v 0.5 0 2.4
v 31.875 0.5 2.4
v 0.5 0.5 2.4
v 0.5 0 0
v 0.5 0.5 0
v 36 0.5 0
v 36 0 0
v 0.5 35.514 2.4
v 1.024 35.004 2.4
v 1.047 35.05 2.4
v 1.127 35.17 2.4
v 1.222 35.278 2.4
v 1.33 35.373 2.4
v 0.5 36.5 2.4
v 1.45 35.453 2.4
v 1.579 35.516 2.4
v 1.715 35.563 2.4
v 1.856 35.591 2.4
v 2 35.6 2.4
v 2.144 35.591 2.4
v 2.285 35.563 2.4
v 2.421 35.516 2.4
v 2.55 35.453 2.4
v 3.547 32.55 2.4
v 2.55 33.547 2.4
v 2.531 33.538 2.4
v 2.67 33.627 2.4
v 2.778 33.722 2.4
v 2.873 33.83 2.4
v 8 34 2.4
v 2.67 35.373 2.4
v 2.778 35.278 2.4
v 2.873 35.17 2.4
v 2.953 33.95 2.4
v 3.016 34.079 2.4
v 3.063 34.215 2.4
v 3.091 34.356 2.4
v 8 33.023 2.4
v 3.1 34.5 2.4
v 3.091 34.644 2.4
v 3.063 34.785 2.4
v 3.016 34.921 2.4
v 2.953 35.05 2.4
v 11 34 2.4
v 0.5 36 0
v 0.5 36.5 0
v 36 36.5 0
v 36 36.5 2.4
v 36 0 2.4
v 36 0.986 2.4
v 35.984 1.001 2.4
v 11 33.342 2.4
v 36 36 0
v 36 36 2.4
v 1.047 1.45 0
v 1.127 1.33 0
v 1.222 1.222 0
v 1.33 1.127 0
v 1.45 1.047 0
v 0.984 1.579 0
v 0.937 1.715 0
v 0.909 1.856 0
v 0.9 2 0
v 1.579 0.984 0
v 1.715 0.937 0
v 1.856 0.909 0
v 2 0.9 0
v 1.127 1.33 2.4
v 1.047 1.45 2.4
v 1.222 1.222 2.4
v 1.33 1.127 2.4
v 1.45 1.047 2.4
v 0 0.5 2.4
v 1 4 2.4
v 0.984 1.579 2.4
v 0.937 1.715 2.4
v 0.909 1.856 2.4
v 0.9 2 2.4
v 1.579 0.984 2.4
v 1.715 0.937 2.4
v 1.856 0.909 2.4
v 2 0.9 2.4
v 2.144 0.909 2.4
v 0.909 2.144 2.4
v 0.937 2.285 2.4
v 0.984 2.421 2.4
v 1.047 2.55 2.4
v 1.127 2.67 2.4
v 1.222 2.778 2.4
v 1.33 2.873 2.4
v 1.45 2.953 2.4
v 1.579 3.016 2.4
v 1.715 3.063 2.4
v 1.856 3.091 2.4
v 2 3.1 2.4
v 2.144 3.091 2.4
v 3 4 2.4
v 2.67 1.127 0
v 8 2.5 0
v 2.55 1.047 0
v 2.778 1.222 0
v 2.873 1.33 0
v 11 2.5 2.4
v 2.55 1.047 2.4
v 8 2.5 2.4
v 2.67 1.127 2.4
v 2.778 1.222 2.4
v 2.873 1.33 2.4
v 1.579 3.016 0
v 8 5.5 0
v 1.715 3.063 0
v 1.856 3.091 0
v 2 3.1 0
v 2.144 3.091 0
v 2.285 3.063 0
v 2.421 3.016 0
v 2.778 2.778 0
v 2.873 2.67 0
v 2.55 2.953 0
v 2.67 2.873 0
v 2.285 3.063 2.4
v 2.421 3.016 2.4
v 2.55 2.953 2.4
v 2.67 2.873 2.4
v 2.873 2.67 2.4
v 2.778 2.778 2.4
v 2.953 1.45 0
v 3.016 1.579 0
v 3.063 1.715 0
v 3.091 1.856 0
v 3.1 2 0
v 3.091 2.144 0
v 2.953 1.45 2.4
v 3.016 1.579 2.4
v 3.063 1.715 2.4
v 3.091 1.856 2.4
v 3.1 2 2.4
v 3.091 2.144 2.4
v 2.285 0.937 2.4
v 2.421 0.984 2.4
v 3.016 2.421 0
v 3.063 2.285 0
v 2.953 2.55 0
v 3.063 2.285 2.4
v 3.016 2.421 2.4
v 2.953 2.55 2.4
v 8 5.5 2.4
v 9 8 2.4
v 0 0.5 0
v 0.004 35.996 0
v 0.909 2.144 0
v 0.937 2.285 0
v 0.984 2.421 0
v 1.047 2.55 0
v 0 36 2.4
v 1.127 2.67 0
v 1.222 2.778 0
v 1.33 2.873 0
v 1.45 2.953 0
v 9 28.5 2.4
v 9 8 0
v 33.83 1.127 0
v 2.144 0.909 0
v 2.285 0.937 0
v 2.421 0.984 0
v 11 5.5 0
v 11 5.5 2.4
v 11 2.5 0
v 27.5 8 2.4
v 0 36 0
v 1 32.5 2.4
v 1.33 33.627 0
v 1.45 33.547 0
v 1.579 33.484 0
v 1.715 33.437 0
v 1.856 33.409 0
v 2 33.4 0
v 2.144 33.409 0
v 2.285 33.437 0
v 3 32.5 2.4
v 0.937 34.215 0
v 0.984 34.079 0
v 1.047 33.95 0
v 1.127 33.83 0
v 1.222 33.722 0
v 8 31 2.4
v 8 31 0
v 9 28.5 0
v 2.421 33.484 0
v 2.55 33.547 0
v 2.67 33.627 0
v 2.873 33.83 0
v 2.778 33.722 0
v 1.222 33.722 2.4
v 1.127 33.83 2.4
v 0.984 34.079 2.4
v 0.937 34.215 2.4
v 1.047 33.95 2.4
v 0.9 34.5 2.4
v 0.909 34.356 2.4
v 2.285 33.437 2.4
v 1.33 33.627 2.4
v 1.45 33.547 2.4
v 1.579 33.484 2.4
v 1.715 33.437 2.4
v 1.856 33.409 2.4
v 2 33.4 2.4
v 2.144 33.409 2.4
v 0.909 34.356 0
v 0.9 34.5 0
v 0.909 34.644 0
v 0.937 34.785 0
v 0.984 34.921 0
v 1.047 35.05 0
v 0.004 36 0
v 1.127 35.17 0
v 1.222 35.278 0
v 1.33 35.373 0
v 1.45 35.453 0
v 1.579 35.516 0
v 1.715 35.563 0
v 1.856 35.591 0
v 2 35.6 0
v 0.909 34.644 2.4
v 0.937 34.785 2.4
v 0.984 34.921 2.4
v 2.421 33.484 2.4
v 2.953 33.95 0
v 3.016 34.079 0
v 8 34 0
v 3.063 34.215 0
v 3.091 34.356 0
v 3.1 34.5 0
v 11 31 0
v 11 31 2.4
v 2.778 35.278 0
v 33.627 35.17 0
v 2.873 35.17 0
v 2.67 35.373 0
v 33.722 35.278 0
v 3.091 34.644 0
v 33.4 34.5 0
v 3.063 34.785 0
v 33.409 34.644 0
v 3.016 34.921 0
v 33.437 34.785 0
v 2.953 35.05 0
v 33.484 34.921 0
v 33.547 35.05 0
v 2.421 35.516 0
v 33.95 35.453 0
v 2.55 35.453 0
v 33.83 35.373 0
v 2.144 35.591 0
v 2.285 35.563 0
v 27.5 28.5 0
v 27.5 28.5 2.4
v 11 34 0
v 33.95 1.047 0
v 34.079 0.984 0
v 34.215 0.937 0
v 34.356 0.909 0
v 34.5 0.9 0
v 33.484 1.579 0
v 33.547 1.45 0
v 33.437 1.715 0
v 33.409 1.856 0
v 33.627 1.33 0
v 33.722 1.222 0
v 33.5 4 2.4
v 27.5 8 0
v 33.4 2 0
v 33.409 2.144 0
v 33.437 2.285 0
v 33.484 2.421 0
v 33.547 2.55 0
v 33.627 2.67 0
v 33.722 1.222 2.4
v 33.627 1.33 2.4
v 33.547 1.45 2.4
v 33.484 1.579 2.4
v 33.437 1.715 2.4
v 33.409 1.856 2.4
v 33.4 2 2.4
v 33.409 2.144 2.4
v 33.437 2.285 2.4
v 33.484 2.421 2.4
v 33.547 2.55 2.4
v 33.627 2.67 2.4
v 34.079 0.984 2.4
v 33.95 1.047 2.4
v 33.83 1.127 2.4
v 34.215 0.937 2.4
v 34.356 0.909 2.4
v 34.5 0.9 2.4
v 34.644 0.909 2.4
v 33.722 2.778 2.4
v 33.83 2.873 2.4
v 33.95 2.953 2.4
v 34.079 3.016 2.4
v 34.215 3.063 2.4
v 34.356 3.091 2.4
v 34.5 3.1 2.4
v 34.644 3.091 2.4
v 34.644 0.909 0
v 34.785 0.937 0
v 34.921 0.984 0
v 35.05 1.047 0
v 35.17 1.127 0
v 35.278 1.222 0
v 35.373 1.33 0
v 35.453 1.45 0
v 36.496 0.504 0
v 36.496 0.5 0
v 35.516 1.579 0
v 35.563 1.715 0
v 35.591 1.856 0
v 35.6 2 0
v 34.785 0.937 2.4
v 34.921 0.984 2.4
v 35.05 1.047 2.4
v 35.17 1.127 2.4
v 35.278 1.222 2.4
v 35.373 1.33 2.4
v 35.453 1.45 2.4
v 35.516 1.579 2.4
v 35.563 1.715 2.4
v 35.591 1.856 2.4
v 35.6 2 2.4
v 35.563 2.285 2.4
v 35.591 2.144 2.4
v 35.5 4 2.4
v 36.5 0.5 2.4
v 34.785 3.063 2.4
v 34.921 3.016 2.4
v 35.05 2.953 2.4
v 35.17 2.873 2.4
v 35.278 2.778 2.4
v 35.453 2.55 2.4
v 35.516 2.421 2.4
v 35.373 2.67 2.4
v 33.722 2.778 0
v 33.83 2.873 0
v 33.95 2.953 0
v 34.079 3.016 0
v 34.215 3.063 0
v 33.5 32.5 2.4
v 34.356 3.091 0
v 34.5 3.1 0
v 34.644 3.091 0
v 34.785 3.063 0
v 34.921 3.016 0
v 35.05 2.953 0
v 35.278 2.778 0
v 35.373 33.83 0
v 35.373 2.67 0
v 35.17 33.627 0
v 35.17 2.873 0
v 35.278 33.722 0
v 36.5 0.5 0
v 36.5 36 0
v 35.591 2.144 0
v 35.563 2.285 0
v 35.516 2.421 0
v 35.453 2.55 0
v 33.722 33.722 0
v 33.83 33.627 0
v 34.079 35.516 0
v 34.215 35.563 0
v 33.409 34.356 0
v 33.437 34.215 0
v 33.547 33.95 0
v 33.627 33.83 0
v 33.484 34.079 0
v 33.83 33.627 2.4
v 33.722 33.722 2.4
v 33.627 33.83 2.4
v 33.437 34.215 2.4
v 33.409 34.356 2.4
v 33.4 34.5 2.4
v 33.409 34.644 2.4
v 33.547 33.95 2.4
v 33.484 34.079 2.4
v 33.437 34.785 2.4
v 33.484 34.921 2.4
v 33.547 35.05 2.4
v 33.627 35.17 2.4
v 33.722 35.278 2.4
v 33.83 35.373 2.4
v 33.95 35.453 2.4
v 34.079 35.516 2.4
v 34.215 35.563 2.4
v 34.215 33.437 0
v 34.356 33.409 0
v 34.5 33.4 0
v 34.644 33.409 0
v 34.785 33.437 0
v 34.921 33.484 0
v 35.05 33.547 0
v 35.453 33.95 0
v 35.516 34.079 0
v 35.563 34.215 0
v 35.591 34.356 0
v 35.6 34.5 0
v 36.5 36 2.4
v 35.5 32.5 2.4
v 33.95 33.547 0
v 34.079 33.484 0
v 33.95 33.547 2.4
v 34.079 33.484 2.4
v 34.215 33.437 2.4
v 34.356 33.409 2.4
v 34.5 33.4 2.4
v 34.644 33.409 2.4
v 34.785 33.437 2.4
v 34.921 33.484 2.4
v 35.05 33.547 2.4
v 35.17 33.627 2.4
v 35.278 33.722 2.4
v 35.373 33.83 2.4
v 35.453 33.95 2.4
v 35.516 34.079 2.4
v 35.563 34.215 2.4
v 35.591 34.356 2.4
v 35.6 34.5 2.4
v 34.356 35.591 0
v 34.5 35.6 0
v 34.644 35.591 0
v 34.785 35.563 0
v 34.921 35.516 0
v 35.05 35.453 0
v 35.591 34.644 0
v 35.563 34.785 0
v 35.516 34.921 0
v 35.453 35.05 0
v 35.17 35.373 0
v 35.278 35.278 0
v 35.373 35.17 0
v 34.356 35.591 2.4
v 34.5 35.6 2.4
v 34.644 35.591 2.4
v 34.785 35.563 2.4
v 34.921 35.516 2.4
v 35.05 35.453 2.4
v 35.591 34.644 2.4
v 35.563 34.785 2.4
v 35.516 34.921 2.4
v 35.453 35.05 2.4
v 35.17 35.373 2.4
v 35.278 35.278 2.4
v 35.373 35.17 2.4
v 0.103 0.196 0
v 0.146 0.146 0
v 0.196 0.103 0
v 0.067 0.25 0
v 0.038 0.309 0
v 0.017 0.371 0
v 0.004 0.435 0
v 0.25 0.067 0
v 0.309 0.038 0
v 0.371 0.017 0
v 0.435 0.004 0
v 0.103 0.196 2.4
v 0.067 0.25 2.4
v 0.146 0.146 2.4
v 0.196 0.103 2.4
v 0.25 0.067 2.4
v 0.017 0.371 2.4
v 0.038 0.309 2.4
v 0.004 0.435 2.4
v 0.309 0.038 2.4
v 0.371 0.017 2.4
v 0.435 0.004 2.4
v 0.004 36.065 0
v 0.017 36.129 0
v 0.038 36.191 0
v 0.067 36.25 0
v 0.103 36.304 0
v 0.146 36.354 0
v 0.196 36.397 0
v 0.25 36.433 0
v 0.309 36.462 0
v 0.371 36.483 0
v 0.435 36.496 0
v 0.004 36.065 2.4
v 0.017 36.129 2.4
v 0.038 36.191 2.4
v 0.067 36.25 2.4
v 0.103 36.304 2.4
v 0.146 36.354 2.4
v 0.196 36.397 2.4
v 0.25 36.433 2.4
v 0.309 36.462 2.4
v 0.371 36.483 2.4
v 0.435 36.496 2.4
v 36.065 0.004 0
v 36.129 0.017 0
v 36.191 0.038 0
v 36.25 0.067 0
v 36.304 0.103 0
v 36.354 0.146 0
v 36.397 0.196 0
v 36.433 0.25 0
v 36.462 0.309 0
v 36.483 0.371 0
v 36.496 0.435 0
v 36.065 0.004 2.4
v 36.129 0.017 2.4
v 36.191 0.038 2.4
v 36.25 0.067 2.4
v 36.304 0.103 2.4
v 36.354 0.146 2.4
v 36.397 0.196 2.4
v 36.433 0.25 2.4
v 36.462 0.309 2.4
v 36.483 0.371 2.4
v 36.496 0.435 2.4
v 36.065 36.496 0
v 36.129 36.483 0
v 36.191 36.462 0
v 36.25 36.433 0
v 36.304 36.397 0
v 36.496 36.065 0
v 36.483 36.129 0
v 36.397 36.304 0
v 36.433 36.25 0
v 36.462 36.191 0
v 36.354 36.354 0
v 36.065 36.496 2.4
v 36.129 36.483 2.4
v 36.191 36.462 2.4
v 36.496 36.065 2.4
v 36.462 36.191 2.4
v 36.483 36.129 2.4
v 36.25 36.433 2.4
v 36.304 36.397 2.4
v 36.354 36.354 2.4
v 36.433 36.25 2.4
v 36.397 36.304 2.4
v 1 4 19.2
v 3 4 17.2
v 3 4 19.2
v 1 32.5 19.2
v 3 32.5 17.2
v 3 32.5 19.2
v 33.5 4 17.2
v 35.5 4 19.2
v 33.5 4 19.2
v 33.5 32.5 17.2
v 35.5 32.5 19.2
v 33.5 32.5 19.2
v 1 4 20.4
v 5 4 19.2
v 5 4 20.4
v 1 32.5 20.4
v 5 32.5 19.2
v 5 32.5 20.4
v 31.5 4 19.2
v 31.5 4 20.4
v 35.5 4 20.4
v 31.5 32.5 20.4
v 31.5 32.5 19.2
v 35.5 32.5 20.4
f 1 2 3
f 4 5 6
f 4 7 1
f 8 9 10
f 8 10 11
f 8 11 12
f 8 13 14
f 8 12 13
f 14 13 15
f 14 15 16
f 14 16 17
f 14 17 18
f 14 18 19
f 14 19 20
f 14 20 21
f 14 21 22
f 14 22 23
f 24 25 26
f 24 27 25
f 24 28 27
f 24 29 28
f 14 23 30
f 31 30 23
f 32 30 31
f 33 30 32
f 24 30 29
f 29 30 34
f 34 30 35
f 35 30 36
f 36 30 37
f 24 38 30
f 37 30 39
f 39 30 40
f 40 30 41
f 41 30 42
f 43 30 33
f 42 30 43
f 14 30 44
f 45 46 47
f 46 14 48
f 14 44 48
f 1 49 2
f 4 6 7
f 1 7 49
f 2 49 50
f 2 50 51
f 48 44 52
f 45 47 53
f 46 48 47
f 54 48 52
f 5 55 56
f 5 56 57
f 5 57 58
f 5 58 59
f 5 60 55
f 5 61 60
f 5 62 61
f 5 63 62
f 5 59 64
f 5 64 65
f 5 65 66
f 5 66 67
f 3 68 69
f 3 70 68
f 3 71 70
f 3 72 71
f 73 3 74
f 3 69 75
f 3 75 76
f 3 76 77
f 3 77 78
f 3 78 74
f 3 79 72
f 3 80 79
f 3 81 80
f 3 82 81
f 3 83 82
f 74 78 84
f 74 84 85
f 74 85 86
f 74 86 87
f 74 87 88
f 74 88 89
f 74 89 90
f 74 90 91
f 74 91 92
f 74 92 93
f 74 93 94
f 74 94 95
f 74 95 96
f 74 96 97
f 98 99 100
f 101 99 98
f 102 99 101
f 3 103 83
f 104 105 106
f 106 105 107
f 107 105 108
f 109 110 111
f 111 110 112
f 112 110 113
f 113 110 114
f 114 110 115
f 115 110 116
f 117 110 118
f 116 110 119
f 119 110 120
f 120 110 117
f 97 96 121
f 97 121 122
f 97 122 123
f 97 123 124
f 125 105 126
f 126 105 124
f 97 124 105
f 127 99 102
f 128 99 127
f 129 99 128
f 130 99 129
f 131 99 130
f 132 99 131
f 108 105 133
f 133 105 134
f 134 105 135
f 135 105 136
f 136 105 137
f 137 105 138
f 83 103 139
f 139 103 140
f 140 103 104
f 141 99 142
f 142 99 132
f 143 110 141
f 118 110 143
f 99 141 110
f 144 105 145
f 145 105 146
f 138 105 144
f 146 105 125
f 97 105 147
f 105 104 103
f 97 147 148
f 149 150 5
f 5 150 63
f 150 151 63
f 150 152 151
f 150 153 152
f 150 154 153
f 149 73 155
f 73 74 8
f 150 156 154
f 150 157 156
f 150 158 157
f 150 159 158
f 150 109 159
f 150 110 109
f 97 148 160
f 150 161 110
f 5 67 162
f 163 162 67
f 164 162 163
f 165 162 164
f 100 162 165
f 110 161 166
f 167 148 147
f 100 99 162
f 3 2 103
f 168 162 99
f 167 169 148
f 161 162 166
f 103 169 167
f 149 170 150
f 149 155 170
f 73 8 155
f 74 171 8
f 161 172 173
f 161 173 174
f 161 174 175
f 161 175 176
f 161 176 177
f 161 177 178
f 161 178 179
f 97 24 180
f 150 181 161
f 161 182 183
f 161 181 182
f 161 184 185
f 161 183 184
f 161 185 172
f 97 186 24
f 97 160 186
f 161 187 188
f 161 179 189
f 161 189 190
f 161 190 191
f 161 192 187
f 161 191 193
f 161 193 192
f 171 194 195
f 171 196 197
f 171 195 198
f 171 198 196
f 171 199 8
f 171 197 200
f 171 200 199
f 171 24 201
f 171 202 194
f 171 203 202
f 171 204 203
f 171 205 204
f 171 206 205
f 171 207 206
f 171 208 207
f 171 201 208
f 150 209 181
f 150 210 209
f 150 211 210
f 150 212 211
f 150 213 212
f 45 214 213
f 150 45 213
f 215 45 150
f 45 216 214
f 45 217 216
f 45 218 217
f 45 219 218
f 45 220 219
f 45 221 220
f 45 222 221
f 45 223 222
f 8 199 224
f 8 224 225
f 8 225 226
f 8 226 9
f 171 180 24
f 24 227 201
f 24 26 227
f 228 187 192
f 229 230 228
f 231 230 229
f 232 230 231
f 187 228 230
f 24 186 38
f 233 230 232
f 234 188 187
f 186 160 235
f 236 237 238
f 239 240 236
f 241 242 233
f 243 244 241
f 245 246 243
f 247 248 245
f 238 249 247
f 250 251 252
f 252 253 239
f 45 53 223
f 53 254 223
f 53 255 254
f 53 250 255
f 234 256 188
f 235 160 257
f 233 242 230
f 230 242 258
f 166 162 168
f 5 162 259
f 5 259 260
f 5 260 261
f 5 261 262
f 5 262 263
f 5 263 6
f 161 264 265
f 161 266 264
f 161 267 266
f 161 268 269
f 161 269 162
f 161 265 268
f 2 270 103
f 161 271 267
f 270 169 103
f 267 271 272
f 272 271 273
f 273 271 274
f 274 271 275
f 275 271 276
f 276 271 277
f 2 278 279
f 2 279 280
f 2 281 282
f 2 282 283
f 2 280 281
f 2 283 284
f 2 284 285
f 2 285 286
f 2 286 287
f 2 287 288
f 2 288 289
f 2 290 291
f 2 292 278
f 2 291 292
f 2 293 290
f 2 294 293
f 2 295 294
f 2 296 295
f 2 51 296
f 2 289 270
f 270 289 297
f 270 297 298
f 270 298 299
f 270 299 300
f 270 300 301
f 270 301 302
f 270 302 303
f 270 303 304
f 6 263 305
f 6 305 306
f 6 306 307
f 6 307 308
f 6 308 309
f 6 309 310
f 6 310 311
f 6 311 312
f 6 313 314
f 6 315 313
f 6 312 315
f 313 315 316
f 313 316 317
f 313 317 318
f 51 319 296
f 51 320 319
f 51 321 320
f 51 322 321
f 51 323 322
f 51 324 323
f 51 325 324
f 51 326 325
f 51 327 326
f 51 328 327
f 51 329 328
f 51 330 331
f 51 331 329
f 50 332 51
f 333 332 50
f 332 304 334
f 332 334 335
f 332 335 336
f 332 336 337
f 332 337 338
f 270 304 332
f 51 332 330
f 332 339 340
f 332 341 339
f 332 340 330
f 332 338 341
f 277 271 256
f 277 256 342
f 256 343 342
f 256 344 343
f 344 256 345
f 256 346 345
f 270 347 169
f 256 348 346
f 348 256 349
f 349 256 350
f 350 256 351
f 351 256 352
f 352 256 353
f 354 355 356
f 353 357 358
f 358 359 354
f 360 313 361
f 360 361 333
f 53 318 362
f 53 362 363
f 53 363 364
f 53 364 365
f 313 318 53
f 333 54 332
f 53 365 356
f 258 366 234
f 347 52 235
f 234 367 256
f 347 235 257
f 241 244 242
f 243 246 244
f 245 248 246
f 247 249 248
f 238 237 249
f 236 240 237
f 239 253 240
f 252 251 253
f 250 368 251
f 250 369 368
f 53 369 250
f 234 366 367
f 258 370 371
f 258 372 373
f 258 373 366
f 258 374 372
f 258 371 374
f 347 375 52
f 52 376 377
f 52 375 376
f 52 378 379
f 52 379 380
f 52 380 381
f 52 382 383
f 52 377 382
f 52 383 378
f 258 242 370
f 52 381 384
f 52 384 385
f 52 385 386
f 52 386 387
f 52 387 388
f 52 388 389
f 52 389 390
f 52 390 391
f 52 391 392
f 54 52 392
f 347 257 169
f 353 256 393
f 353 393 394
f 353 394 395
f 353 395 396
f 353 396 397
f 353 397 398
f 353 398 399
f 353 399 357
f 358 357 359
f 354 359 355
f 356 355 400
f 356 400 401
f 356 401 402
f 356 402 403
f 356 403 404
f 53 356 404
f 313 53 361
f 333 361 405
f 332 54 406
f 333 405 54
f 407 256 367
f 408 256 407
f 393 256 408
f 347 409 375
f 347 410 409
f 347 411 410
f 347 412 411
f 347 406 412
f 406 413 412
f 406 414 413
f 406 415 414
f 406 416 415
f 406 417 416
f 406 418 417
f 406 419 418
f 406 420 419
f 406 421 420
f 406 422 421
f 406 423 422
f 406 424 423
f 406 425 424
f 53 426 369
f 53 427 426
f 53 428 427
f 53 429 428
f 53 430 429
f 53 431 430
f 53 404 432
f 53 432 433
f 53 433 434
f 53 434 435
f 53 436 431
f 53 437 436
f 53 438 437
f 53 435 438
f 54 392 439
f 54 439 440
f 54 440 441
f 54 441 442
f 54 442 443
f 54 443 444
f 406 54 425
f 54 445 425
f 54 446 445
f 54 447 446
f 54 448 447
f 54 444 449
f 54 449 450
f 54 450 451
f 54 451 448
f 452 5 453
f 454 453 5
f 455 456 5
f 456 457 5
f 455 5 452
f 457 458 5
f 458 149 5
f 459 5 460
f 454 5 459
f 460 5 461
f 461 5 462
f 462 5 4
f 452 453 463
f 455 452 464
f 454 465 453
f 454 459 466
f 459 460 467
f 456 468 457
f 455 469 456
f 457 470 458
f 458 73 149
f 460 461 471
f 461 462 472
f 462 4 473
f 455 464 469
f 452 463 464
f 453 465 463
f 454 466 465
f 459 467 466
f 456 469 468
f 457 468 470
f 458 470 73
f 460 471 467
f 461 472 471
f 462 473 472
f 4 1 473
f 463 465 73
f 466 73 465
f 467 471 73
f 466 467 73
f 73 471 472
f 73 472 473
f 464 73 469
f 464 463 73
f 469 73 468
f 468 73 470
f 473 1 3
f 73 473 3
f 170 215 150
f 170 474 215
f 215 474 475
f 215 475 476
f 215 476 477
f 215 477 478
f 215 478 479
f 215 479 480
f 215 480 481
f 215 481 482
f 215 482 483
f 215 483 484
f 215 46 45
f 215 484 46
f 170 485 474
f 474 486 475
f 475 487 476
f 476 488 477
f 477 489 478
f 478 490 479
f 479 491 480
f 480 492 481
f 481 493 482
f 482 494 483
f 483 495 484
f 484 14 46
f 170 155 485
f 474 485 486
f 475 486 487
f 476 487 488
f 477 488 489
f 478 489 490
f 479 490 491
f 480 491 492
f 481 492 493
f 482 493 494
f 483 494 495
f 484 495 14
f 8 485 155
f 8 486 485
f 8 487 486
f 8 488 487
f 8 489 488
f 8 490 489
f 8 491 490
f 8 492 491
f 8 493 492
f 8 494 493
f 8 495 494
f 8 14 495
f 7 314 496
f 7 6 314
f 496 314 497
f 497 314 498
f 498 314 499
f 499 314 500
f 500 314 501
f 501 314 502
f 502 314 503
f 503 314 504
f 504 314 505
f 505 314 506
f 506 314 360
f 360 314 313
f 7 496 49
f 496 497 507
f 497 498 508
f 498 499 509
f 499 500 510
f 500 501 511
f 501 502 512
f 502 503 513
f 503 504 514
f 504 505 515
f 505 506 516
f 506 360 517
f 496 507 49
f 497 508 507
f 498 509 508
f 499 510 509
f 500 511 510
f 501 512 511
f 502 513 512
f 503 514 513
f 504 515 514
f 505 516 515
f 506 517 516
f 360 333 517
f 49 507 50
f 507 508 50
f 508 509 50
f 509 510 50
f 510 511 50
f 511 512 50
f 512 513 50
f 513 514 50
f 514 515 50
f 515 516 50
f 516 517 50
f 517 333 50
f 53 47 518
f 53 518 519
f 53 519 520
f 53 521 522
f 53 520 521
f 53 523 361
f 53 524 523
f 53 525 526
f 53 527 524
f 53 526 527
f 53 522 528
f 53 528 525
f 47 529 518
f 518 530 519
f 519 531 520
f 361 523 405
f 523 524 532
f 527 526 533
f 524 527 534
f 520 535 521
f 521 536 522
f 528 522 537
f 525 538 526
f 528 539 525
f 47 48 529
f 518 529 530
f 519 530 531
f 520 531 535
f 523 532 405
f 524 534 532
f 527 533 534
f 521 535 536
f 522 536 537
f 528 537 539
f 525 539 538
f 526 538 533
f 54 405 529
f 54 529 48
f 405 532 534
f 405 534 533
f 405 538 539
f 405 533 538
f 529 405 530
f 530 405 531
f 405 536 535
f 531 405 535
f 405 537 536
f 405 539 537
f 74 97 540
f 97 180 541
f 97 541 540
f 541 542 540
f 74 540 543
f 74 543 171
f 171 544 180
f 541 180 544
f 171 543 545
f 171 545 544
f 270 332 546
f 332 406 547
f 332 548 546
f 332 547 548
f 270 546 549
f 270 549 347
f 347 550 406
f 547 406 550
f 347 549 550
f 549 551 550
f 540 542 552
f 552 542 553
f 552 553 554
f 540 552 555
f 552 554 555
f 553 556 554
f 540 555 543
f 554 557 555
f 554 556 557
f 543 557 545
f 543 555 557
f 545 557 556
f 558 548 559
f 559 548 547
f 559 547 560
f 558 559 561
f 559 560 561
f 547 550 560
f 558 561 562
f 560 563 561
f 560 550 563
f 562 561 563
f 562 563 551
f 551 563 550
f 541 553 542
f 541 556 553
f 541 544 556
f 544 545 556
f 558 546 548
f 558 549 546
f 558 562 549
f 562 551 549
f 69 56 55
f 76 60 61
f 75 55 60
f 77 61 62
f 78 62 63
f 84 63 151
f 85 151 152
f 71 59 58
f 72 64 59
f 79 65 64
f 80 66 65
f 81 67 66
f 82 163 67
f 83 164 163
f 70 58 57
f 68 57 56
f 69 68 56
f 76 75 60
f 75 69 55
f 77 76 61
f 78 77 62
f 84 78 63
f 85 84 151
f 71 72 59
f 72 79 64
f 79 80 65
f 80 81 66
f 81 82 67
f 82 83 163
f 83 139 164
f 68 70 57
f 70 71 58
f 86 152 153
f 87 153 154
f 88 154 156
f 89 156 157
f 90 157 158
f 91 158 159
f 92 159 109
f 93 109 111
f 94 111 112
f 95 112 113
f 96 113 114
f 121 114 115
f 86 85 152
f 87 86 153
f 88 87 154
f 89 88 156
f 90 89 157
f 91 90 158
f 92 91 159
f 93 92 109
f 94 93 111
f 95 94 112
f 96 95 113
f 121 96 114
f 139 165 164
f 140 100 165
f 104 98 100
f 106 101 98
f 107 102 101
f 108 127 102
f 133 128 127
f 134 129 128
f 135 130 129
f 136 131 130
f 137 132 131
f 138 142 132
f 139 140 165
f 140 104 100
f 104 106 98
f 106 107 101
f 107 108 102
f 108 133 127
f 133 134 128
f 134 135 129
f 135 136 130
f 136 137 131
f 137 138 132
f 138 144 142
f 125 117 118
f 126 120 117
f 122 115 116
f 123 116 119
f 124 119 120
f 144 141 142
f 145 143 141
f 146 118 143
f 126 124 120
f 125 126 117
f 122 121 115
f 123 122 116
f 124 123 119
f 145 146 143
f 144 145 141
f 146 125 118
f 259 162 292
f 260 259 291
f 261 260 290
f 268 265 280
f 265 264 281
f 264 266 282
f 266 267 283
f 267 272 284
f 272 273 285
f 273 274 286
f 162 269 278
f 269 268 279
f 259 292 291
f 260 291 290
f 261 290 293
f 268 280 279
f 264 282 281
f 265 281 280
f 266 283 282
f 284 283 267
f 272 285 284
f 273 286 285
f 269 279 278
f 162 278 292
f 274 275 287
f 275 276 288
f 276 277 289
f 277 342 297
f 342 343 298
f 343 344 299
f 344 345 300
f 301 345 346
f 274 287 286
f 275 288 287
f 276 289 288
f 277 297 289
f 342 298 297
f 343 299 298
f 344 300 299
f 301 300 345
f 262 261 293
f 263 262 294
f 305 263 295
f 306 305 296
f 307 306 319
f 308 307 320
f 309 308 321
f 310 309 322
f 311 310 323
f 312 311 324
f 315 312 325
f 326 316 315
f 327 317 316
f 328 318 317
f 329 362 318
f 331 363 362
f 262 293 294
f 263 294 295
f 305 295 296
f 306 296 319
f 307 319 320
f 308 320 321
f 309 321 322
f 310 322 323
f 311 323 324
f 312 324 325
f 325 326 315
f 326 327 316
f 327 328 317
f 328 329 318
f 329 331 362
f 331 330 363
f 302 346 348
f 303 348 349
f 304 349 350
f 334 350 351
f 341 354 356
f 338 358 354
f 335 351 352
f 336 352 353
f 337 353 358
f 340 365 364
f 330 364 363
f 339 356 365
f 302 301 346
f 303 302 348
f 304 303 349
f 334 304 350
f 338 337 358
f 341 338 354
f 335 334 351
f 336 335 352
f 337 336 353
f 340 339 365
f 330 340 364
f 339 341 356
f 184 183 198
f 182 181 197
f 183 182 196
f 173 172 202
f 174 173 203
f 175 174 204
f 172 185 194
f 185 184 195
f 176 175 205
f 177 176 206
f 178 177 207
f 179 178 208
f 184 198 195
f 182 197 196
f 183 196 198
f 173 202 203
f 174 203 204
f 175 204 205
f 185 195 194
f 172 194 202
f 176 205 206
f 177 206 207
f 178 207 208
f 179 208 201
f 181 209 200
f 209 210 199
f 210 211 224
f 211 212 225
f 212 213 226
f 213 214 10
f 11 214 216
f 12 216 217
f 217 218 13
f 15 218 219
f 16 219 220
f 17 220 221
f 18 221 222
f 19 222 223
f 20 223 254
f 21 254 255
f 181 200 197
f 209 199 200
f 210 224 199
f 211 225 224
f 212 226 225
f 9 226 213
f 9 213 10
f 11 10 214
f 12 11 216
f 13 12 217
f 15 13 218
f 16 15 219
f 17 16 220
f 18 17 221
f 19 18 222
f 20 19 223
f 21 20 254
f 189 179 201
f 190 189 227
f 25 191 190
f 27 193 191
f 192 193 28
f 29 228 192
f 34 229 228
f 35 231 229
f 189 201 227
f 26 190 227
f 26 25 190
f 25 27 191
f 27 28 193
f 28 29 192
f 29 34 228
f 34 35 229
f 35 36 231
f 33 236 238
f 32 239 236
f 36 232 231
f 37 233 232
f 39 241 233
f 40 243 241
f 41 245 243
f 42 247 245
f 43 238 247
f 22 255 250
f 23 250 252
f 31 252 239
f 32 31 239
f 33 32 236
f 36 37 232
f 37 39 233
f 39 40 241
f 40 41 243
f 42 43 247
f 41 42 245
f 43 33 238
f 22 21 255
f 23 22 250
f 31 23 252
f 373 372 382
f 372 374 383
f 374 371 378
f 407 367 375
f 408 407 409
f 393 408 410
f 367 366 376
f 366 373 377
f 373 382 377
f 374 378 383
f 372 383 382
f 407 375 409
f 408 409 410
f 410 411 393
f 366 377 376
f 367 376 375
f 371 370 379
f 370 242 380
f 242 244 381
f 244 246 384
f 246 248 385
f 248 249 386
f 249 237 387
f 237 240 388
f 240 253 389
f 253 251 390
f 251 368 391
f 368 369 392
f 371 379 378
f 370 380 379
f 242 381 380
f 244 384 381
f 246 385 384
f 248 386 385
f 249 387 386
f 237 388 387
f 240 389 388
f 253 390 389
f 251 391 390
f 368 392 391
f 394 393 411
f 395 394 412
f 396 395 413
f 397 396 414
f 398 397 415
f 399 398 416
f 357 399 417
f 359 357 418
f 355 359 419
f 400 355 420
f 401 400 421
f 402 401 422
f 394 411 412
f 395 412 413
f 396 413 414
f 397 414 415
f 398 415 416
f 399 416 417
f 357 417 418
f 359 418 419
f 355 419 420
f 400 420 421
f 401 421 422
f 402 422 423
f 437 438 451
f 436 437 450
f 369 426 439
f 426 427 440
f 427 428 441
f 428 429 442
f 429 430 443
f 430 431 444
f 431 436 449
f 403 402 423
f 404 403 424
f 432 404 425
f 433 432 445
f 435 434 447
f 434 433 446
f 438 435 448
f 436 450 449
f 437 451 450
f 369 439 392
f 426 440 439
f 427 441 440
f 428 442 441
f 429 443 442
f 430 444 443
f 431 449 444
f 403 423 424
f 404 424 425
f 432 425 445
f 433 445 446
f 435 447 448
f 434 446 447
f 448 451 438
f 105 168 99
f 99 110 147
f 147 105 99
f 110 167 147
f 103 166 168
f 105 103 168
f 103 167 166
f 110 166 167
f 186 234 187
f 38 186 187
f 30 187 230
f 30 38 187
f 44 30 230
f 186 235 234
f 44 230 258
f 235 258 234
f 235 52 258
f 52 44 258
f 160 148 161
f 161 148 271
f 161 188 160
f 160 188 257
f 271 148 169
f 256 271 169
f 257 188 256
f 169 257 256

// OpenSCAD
// Generated FH1 print part; mm. See parameters.json and physical-fit limits.
difference() {
union() {
union() {
translate([0.5, 0, 0]) { cube([35.5,36.5,2.4]); }
translate([0, 0.5, 0]) { cube([36.5,35.5,2.4]); }
translate([0.5, 0.5, 0]) { cylinder(d=1.0,h=2.4,$fn=48); }
translate([0.5, 36.0, 0]) { cylinder(d=1.0,h=2.4,$fn=48); }
translate([36.0, 0.5, 0]) { cylinder(d=1.0,h=2.4,$fn=48); }
translate([36.0, 36.0, 0]) { cylinder(d=1.0,h=2.4,$fn=48); }
}
translate([1, 4, 0]) { cube([2,28.5,20.4]); }
translate([33.5, 4, 0]) { cube([2,28.5,20.4]); }
translate([1, 4, 19.2]) { cube([4,28.5,1.2]); }
translate([31.5, 4, 19.2]) { cube([4,28.5,1.2]); }
translate([3, 32.5, 17.2]) { rotate([90, 0, 0]) { linear_extrude(height=28.5) polygon(points=[[0, 0], [2, 2], [0, 2]]); } }
translate([33.5, 4, 17.2]) { rotate([0, 0, 180]) { rotate([90, 0, 0]) { linear_extrude(height=28.5) polygon(points=[[0, 0], [2, 2], [0, 2]]); } } }
}
translate([2, 2, -0.1]) { cylinder(d=2.2,h=2.6,$fn=48); }
translate([34.5, 2, -0.1]) { cylinder(d=2.2,h=2.6,$fn=48); }
translate([2, 34.5, -0.1]) { cylinder(d=2.2,h=2.6,$fn=48); }
translate([34.5, 34.5, -0.1]) { cylinder(d=2.2,h=2.6,$fn=48); }
translate([8, 2.5, -0.1]) { cube([3,3,2.6]); }
translate([8, 31.0, -0.1]) { cube([3,3,2.6]); }
translate([9, 8, -0.1]) { cube([18.5,20.5,2.6]); }
}
